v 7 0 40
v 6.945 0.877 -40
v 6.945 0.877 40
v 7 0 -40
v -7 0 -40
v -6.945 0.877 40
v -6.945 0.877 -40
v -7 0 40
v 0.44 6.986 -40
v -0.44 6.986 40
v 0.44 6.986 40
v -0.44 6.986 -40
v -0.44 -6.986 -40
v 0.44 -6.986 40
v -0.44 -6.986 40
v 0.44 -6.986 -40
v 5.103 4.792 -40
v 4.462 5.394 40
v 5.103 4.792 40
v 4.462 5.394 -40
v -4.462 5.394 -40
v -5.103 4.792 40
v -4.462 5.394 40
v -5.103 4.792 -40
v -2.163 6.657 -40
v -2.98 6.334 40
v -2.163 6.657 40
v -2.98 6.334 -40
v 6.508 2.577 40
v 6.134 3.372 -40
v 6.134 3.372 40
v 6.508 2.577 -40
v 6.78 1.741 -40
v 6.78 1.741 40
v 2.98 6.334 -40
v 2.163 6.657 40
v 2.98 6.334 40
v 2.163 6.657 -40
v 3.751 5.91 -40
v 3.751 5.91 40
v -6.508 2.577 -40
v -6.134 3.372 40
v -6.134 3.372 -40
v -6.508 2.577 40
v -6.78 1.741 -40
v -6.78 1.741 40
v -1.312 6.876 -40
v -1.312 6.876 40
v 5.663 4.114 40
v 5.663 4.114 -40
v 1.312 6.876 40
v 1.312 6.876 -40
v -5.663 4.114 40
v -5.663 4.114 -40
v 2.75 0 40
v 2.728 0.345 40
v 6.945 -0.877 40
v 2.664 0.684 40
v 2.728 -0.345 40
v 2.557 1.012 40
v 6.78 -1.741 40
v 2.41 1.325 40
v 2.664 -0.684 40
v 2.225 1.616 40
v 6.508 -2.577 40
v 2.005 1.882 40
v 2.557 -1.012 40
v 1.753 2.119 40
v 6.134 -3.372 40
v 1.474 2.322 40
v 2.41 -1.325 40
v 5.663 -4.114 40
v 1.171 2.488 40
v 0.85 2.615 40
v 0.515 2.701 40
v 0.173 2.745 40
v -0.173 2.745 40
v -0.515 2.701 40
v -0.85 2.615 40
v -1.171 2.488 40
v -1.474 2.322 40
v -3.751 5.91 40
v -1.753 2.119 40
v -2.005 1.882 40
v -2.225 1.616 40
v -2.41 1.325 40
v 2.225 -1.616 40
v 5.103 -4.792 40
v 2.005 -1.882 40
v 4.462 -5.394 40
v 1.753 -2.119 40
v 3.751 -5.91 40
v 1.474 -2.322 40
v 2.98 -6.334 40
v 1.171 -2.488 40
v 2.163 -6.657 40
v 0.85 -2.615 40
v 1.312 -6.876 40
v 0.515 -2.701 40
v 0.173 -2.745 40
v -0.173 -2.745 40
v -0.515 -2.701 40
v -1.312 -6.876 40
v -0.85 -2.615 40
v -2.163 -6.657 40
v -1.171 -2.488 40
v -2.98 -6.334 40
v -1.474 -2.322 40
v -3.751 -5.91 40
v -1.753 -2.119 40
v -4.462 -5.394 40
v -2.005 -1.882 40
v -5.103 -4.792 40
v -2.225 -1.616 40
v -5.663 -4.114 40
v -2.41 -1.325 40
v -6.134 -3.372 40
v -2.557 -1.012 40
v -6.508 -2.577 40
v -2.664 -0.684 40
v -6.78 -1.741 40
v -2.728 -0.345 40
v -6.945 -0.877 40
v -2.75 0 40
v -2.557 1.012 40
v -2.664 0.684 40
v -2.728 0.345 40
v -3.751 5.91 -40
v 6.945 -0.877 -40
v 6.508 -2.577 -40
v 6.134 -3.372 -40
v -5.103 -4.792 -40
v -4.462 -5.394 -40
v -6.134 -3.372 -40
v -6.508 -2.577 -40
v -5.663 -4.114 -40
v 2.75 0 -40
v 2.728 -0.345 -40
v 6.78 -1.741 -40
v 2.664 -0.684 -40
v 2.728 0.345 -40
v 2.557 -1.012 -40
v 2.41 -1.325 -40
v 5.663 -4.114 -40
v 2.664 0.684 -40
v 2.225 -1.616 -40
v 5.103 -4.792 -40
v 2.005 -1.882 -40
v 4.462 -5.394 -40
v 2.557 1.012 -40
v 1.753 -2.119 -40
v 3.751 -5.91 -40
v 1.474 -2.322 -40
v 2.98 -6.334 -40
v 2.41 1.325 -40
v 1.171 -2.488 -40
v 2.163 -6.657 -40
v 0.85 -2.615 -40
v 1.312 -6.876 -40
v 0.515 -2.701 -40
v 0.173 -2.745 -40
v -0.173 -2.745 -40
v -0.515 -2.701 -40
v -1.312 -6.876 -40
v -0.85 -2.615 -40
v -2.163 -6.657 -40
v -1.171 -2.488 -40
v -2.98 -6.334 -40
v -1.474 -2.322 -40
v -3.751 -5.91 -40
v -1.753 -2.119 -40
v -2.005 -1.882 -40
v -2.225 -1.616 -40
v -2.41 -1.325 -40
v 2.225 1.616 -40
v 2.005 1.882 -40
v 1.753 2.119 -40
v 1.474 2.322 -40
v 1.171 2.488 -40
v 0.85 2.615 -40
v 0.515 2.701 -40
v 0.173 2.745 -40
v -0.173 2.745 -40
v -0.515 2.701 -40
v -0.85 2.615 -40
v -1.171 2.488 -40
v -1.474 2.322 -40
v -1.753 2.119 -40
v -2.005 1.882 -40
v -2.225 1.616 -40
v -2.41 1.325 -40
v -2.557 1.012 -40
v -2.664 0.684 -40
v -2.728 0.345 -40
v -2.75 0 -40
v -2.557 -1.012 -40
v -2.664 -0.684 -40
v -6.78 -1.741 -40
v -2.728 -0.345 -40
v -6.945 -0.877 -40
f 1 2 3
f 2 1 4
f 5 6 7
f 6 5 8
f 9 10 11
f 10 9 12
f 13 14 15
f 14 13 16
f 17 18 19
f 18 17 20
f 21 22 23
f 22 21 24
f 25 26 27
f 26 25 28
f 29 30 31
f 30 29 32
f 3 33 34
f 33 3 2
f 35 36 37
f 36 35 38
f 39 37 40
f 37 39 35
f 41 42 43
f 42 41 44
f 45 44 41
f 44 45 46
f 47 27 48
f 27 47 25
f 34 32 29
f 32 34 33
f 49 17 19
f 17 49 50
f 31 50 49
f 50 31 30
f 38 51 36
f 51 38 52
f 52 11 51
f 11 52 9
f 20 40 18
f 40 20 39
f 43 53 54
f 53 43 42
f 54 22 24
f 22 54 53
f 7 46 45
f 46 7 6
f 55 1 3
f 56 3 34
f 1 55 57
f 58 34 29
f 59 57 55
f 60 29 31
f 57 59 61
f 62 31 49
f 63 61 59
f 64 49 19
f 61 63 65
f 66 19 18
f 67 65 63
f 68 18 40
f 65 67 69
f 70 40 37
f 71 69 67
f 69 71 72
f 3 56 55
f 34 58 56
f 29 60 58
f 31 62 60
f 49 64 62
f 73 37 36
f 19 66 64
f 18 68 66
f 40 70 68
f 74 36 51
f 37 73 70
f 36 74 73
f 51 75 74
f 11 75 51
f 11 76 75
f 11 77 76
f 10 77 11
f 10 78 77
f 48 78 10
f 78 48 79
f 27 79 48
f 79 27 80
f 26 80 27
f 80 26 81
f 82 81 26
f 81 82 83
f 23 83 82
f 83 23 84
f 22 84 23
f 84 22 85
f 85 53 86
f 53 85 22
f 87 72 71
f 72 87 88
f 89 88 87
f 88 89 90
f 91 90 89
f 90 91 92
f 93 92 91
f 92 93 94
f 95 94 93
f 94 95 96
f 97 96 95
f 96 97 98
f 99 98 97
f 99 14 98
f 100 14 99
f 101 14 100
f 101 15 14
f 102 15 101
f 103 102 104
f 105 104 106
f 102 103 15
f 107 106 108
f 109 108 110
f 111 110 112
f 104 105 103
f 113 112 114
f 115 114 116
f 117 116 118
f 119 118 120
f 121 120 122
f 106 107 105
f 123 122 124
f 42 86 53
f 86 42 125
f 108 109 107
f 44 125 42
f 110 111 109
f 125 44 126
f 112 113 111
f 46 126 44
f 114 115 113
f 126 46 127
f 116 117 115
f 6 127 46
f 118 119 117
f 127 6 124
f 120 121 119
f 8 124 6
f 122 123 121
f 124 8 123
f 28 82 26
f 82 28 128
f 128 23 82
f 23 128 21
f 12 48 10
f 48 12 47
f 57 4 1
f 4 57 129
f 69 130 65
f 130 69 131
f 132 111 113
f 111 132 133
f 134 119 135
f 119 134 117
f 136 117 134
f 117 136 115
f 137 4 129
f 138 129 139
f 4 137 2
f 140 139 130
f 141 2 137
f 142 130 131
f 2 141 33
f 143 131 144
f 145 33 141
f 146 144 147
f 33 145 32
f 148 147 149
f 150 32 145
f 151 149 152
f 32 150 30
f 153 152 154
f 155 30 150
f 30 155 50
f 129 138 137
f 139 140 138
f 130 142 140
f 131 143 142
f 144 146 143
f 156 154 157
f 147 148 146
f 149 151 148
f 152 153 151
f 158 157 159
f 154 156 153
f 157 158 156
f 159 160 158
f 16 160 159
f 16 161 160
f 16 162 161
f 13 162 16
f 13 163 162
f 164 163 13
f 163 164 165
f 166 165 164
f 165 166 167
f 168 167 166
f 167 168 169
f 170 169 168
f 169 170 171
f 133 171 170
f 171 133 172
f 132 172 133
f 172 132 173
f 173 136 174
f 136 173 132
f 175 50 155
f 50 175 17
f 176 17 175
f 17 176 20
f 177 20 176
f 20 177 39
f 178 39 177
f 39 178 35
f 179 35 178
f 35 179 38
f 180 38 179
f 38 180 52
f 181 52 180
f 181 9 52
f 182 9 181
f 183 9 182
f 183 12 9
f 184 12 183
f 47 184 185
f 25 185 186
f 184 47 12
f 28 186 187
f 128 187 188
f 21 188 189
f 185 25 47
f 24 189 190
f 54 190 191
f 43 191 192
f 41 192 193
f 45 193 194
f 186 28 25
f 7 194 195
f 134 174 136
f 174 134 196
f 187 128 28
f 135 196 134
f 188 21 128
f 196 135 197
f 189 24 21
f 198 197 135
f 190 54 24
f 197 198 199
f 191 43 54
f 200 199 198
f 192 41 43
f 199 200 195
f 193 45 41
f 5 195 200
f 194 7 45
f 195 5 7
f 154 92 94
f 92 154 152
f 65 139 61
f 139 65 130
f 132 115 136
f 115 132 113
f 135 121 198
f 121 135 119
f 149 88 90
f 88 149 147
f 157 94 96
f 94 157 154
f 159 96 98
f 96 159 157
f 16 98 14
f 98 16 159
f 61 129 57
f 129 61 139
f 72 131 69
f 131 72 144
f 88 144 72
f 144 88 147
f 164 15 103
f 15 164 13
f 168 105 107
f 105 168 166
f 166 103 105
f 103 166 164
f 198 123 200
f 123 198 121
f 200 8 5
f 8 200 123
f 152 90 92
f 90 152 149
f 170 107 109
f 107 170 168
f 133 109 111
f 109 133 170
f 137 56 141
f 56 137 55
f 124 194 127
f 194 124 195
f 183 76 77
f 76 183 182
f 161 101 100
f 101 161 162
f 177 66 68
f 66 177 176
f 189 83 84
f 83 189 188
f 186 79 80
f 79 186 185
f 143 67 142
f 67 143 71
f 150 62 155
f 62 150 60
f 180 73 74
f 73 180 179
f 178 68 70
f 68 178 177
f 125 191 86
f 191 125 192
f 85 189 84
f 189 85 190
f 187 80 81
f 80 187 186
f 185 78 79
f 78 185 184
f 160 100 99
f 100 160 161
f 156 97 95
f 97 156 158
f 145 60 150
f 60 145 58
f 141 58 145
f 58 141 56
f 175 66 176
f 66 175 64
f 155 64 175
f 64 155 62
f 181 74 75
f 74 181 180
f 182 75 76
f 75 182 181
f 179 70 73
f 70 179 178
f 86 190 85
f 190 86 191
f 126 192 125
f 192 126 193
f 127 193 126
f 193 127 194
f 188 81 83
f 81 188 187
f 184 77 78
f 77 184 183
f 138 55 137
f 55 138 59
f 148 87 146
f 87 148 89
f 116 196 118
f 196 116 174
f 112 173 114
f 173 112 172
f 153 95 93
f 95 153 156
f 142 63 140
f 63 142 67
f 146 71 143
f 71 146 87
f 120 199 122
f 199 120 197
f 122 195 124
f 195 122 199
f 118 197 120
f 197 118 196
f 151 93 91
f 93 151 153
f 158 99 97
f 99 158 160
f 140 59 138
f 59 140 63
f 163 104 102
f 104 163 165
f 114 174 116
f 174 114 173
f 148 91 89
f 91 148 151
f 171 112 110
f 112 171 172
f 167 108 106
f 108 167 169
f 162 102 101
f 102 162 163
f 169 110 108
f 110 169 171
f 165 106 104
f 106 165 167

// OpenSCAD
$fn = 50;


difference() {
	union() {
		translate(v = [0, 0, -40.0000000000]) {
			cylinder(h = 80, r = 7.0000000000);
		}
	}
	union() {
		translate(v = [0, 0, -100.0000000000]) {
			cylinder(h = 200, r = 2.7500000000);
		}
	}
}
